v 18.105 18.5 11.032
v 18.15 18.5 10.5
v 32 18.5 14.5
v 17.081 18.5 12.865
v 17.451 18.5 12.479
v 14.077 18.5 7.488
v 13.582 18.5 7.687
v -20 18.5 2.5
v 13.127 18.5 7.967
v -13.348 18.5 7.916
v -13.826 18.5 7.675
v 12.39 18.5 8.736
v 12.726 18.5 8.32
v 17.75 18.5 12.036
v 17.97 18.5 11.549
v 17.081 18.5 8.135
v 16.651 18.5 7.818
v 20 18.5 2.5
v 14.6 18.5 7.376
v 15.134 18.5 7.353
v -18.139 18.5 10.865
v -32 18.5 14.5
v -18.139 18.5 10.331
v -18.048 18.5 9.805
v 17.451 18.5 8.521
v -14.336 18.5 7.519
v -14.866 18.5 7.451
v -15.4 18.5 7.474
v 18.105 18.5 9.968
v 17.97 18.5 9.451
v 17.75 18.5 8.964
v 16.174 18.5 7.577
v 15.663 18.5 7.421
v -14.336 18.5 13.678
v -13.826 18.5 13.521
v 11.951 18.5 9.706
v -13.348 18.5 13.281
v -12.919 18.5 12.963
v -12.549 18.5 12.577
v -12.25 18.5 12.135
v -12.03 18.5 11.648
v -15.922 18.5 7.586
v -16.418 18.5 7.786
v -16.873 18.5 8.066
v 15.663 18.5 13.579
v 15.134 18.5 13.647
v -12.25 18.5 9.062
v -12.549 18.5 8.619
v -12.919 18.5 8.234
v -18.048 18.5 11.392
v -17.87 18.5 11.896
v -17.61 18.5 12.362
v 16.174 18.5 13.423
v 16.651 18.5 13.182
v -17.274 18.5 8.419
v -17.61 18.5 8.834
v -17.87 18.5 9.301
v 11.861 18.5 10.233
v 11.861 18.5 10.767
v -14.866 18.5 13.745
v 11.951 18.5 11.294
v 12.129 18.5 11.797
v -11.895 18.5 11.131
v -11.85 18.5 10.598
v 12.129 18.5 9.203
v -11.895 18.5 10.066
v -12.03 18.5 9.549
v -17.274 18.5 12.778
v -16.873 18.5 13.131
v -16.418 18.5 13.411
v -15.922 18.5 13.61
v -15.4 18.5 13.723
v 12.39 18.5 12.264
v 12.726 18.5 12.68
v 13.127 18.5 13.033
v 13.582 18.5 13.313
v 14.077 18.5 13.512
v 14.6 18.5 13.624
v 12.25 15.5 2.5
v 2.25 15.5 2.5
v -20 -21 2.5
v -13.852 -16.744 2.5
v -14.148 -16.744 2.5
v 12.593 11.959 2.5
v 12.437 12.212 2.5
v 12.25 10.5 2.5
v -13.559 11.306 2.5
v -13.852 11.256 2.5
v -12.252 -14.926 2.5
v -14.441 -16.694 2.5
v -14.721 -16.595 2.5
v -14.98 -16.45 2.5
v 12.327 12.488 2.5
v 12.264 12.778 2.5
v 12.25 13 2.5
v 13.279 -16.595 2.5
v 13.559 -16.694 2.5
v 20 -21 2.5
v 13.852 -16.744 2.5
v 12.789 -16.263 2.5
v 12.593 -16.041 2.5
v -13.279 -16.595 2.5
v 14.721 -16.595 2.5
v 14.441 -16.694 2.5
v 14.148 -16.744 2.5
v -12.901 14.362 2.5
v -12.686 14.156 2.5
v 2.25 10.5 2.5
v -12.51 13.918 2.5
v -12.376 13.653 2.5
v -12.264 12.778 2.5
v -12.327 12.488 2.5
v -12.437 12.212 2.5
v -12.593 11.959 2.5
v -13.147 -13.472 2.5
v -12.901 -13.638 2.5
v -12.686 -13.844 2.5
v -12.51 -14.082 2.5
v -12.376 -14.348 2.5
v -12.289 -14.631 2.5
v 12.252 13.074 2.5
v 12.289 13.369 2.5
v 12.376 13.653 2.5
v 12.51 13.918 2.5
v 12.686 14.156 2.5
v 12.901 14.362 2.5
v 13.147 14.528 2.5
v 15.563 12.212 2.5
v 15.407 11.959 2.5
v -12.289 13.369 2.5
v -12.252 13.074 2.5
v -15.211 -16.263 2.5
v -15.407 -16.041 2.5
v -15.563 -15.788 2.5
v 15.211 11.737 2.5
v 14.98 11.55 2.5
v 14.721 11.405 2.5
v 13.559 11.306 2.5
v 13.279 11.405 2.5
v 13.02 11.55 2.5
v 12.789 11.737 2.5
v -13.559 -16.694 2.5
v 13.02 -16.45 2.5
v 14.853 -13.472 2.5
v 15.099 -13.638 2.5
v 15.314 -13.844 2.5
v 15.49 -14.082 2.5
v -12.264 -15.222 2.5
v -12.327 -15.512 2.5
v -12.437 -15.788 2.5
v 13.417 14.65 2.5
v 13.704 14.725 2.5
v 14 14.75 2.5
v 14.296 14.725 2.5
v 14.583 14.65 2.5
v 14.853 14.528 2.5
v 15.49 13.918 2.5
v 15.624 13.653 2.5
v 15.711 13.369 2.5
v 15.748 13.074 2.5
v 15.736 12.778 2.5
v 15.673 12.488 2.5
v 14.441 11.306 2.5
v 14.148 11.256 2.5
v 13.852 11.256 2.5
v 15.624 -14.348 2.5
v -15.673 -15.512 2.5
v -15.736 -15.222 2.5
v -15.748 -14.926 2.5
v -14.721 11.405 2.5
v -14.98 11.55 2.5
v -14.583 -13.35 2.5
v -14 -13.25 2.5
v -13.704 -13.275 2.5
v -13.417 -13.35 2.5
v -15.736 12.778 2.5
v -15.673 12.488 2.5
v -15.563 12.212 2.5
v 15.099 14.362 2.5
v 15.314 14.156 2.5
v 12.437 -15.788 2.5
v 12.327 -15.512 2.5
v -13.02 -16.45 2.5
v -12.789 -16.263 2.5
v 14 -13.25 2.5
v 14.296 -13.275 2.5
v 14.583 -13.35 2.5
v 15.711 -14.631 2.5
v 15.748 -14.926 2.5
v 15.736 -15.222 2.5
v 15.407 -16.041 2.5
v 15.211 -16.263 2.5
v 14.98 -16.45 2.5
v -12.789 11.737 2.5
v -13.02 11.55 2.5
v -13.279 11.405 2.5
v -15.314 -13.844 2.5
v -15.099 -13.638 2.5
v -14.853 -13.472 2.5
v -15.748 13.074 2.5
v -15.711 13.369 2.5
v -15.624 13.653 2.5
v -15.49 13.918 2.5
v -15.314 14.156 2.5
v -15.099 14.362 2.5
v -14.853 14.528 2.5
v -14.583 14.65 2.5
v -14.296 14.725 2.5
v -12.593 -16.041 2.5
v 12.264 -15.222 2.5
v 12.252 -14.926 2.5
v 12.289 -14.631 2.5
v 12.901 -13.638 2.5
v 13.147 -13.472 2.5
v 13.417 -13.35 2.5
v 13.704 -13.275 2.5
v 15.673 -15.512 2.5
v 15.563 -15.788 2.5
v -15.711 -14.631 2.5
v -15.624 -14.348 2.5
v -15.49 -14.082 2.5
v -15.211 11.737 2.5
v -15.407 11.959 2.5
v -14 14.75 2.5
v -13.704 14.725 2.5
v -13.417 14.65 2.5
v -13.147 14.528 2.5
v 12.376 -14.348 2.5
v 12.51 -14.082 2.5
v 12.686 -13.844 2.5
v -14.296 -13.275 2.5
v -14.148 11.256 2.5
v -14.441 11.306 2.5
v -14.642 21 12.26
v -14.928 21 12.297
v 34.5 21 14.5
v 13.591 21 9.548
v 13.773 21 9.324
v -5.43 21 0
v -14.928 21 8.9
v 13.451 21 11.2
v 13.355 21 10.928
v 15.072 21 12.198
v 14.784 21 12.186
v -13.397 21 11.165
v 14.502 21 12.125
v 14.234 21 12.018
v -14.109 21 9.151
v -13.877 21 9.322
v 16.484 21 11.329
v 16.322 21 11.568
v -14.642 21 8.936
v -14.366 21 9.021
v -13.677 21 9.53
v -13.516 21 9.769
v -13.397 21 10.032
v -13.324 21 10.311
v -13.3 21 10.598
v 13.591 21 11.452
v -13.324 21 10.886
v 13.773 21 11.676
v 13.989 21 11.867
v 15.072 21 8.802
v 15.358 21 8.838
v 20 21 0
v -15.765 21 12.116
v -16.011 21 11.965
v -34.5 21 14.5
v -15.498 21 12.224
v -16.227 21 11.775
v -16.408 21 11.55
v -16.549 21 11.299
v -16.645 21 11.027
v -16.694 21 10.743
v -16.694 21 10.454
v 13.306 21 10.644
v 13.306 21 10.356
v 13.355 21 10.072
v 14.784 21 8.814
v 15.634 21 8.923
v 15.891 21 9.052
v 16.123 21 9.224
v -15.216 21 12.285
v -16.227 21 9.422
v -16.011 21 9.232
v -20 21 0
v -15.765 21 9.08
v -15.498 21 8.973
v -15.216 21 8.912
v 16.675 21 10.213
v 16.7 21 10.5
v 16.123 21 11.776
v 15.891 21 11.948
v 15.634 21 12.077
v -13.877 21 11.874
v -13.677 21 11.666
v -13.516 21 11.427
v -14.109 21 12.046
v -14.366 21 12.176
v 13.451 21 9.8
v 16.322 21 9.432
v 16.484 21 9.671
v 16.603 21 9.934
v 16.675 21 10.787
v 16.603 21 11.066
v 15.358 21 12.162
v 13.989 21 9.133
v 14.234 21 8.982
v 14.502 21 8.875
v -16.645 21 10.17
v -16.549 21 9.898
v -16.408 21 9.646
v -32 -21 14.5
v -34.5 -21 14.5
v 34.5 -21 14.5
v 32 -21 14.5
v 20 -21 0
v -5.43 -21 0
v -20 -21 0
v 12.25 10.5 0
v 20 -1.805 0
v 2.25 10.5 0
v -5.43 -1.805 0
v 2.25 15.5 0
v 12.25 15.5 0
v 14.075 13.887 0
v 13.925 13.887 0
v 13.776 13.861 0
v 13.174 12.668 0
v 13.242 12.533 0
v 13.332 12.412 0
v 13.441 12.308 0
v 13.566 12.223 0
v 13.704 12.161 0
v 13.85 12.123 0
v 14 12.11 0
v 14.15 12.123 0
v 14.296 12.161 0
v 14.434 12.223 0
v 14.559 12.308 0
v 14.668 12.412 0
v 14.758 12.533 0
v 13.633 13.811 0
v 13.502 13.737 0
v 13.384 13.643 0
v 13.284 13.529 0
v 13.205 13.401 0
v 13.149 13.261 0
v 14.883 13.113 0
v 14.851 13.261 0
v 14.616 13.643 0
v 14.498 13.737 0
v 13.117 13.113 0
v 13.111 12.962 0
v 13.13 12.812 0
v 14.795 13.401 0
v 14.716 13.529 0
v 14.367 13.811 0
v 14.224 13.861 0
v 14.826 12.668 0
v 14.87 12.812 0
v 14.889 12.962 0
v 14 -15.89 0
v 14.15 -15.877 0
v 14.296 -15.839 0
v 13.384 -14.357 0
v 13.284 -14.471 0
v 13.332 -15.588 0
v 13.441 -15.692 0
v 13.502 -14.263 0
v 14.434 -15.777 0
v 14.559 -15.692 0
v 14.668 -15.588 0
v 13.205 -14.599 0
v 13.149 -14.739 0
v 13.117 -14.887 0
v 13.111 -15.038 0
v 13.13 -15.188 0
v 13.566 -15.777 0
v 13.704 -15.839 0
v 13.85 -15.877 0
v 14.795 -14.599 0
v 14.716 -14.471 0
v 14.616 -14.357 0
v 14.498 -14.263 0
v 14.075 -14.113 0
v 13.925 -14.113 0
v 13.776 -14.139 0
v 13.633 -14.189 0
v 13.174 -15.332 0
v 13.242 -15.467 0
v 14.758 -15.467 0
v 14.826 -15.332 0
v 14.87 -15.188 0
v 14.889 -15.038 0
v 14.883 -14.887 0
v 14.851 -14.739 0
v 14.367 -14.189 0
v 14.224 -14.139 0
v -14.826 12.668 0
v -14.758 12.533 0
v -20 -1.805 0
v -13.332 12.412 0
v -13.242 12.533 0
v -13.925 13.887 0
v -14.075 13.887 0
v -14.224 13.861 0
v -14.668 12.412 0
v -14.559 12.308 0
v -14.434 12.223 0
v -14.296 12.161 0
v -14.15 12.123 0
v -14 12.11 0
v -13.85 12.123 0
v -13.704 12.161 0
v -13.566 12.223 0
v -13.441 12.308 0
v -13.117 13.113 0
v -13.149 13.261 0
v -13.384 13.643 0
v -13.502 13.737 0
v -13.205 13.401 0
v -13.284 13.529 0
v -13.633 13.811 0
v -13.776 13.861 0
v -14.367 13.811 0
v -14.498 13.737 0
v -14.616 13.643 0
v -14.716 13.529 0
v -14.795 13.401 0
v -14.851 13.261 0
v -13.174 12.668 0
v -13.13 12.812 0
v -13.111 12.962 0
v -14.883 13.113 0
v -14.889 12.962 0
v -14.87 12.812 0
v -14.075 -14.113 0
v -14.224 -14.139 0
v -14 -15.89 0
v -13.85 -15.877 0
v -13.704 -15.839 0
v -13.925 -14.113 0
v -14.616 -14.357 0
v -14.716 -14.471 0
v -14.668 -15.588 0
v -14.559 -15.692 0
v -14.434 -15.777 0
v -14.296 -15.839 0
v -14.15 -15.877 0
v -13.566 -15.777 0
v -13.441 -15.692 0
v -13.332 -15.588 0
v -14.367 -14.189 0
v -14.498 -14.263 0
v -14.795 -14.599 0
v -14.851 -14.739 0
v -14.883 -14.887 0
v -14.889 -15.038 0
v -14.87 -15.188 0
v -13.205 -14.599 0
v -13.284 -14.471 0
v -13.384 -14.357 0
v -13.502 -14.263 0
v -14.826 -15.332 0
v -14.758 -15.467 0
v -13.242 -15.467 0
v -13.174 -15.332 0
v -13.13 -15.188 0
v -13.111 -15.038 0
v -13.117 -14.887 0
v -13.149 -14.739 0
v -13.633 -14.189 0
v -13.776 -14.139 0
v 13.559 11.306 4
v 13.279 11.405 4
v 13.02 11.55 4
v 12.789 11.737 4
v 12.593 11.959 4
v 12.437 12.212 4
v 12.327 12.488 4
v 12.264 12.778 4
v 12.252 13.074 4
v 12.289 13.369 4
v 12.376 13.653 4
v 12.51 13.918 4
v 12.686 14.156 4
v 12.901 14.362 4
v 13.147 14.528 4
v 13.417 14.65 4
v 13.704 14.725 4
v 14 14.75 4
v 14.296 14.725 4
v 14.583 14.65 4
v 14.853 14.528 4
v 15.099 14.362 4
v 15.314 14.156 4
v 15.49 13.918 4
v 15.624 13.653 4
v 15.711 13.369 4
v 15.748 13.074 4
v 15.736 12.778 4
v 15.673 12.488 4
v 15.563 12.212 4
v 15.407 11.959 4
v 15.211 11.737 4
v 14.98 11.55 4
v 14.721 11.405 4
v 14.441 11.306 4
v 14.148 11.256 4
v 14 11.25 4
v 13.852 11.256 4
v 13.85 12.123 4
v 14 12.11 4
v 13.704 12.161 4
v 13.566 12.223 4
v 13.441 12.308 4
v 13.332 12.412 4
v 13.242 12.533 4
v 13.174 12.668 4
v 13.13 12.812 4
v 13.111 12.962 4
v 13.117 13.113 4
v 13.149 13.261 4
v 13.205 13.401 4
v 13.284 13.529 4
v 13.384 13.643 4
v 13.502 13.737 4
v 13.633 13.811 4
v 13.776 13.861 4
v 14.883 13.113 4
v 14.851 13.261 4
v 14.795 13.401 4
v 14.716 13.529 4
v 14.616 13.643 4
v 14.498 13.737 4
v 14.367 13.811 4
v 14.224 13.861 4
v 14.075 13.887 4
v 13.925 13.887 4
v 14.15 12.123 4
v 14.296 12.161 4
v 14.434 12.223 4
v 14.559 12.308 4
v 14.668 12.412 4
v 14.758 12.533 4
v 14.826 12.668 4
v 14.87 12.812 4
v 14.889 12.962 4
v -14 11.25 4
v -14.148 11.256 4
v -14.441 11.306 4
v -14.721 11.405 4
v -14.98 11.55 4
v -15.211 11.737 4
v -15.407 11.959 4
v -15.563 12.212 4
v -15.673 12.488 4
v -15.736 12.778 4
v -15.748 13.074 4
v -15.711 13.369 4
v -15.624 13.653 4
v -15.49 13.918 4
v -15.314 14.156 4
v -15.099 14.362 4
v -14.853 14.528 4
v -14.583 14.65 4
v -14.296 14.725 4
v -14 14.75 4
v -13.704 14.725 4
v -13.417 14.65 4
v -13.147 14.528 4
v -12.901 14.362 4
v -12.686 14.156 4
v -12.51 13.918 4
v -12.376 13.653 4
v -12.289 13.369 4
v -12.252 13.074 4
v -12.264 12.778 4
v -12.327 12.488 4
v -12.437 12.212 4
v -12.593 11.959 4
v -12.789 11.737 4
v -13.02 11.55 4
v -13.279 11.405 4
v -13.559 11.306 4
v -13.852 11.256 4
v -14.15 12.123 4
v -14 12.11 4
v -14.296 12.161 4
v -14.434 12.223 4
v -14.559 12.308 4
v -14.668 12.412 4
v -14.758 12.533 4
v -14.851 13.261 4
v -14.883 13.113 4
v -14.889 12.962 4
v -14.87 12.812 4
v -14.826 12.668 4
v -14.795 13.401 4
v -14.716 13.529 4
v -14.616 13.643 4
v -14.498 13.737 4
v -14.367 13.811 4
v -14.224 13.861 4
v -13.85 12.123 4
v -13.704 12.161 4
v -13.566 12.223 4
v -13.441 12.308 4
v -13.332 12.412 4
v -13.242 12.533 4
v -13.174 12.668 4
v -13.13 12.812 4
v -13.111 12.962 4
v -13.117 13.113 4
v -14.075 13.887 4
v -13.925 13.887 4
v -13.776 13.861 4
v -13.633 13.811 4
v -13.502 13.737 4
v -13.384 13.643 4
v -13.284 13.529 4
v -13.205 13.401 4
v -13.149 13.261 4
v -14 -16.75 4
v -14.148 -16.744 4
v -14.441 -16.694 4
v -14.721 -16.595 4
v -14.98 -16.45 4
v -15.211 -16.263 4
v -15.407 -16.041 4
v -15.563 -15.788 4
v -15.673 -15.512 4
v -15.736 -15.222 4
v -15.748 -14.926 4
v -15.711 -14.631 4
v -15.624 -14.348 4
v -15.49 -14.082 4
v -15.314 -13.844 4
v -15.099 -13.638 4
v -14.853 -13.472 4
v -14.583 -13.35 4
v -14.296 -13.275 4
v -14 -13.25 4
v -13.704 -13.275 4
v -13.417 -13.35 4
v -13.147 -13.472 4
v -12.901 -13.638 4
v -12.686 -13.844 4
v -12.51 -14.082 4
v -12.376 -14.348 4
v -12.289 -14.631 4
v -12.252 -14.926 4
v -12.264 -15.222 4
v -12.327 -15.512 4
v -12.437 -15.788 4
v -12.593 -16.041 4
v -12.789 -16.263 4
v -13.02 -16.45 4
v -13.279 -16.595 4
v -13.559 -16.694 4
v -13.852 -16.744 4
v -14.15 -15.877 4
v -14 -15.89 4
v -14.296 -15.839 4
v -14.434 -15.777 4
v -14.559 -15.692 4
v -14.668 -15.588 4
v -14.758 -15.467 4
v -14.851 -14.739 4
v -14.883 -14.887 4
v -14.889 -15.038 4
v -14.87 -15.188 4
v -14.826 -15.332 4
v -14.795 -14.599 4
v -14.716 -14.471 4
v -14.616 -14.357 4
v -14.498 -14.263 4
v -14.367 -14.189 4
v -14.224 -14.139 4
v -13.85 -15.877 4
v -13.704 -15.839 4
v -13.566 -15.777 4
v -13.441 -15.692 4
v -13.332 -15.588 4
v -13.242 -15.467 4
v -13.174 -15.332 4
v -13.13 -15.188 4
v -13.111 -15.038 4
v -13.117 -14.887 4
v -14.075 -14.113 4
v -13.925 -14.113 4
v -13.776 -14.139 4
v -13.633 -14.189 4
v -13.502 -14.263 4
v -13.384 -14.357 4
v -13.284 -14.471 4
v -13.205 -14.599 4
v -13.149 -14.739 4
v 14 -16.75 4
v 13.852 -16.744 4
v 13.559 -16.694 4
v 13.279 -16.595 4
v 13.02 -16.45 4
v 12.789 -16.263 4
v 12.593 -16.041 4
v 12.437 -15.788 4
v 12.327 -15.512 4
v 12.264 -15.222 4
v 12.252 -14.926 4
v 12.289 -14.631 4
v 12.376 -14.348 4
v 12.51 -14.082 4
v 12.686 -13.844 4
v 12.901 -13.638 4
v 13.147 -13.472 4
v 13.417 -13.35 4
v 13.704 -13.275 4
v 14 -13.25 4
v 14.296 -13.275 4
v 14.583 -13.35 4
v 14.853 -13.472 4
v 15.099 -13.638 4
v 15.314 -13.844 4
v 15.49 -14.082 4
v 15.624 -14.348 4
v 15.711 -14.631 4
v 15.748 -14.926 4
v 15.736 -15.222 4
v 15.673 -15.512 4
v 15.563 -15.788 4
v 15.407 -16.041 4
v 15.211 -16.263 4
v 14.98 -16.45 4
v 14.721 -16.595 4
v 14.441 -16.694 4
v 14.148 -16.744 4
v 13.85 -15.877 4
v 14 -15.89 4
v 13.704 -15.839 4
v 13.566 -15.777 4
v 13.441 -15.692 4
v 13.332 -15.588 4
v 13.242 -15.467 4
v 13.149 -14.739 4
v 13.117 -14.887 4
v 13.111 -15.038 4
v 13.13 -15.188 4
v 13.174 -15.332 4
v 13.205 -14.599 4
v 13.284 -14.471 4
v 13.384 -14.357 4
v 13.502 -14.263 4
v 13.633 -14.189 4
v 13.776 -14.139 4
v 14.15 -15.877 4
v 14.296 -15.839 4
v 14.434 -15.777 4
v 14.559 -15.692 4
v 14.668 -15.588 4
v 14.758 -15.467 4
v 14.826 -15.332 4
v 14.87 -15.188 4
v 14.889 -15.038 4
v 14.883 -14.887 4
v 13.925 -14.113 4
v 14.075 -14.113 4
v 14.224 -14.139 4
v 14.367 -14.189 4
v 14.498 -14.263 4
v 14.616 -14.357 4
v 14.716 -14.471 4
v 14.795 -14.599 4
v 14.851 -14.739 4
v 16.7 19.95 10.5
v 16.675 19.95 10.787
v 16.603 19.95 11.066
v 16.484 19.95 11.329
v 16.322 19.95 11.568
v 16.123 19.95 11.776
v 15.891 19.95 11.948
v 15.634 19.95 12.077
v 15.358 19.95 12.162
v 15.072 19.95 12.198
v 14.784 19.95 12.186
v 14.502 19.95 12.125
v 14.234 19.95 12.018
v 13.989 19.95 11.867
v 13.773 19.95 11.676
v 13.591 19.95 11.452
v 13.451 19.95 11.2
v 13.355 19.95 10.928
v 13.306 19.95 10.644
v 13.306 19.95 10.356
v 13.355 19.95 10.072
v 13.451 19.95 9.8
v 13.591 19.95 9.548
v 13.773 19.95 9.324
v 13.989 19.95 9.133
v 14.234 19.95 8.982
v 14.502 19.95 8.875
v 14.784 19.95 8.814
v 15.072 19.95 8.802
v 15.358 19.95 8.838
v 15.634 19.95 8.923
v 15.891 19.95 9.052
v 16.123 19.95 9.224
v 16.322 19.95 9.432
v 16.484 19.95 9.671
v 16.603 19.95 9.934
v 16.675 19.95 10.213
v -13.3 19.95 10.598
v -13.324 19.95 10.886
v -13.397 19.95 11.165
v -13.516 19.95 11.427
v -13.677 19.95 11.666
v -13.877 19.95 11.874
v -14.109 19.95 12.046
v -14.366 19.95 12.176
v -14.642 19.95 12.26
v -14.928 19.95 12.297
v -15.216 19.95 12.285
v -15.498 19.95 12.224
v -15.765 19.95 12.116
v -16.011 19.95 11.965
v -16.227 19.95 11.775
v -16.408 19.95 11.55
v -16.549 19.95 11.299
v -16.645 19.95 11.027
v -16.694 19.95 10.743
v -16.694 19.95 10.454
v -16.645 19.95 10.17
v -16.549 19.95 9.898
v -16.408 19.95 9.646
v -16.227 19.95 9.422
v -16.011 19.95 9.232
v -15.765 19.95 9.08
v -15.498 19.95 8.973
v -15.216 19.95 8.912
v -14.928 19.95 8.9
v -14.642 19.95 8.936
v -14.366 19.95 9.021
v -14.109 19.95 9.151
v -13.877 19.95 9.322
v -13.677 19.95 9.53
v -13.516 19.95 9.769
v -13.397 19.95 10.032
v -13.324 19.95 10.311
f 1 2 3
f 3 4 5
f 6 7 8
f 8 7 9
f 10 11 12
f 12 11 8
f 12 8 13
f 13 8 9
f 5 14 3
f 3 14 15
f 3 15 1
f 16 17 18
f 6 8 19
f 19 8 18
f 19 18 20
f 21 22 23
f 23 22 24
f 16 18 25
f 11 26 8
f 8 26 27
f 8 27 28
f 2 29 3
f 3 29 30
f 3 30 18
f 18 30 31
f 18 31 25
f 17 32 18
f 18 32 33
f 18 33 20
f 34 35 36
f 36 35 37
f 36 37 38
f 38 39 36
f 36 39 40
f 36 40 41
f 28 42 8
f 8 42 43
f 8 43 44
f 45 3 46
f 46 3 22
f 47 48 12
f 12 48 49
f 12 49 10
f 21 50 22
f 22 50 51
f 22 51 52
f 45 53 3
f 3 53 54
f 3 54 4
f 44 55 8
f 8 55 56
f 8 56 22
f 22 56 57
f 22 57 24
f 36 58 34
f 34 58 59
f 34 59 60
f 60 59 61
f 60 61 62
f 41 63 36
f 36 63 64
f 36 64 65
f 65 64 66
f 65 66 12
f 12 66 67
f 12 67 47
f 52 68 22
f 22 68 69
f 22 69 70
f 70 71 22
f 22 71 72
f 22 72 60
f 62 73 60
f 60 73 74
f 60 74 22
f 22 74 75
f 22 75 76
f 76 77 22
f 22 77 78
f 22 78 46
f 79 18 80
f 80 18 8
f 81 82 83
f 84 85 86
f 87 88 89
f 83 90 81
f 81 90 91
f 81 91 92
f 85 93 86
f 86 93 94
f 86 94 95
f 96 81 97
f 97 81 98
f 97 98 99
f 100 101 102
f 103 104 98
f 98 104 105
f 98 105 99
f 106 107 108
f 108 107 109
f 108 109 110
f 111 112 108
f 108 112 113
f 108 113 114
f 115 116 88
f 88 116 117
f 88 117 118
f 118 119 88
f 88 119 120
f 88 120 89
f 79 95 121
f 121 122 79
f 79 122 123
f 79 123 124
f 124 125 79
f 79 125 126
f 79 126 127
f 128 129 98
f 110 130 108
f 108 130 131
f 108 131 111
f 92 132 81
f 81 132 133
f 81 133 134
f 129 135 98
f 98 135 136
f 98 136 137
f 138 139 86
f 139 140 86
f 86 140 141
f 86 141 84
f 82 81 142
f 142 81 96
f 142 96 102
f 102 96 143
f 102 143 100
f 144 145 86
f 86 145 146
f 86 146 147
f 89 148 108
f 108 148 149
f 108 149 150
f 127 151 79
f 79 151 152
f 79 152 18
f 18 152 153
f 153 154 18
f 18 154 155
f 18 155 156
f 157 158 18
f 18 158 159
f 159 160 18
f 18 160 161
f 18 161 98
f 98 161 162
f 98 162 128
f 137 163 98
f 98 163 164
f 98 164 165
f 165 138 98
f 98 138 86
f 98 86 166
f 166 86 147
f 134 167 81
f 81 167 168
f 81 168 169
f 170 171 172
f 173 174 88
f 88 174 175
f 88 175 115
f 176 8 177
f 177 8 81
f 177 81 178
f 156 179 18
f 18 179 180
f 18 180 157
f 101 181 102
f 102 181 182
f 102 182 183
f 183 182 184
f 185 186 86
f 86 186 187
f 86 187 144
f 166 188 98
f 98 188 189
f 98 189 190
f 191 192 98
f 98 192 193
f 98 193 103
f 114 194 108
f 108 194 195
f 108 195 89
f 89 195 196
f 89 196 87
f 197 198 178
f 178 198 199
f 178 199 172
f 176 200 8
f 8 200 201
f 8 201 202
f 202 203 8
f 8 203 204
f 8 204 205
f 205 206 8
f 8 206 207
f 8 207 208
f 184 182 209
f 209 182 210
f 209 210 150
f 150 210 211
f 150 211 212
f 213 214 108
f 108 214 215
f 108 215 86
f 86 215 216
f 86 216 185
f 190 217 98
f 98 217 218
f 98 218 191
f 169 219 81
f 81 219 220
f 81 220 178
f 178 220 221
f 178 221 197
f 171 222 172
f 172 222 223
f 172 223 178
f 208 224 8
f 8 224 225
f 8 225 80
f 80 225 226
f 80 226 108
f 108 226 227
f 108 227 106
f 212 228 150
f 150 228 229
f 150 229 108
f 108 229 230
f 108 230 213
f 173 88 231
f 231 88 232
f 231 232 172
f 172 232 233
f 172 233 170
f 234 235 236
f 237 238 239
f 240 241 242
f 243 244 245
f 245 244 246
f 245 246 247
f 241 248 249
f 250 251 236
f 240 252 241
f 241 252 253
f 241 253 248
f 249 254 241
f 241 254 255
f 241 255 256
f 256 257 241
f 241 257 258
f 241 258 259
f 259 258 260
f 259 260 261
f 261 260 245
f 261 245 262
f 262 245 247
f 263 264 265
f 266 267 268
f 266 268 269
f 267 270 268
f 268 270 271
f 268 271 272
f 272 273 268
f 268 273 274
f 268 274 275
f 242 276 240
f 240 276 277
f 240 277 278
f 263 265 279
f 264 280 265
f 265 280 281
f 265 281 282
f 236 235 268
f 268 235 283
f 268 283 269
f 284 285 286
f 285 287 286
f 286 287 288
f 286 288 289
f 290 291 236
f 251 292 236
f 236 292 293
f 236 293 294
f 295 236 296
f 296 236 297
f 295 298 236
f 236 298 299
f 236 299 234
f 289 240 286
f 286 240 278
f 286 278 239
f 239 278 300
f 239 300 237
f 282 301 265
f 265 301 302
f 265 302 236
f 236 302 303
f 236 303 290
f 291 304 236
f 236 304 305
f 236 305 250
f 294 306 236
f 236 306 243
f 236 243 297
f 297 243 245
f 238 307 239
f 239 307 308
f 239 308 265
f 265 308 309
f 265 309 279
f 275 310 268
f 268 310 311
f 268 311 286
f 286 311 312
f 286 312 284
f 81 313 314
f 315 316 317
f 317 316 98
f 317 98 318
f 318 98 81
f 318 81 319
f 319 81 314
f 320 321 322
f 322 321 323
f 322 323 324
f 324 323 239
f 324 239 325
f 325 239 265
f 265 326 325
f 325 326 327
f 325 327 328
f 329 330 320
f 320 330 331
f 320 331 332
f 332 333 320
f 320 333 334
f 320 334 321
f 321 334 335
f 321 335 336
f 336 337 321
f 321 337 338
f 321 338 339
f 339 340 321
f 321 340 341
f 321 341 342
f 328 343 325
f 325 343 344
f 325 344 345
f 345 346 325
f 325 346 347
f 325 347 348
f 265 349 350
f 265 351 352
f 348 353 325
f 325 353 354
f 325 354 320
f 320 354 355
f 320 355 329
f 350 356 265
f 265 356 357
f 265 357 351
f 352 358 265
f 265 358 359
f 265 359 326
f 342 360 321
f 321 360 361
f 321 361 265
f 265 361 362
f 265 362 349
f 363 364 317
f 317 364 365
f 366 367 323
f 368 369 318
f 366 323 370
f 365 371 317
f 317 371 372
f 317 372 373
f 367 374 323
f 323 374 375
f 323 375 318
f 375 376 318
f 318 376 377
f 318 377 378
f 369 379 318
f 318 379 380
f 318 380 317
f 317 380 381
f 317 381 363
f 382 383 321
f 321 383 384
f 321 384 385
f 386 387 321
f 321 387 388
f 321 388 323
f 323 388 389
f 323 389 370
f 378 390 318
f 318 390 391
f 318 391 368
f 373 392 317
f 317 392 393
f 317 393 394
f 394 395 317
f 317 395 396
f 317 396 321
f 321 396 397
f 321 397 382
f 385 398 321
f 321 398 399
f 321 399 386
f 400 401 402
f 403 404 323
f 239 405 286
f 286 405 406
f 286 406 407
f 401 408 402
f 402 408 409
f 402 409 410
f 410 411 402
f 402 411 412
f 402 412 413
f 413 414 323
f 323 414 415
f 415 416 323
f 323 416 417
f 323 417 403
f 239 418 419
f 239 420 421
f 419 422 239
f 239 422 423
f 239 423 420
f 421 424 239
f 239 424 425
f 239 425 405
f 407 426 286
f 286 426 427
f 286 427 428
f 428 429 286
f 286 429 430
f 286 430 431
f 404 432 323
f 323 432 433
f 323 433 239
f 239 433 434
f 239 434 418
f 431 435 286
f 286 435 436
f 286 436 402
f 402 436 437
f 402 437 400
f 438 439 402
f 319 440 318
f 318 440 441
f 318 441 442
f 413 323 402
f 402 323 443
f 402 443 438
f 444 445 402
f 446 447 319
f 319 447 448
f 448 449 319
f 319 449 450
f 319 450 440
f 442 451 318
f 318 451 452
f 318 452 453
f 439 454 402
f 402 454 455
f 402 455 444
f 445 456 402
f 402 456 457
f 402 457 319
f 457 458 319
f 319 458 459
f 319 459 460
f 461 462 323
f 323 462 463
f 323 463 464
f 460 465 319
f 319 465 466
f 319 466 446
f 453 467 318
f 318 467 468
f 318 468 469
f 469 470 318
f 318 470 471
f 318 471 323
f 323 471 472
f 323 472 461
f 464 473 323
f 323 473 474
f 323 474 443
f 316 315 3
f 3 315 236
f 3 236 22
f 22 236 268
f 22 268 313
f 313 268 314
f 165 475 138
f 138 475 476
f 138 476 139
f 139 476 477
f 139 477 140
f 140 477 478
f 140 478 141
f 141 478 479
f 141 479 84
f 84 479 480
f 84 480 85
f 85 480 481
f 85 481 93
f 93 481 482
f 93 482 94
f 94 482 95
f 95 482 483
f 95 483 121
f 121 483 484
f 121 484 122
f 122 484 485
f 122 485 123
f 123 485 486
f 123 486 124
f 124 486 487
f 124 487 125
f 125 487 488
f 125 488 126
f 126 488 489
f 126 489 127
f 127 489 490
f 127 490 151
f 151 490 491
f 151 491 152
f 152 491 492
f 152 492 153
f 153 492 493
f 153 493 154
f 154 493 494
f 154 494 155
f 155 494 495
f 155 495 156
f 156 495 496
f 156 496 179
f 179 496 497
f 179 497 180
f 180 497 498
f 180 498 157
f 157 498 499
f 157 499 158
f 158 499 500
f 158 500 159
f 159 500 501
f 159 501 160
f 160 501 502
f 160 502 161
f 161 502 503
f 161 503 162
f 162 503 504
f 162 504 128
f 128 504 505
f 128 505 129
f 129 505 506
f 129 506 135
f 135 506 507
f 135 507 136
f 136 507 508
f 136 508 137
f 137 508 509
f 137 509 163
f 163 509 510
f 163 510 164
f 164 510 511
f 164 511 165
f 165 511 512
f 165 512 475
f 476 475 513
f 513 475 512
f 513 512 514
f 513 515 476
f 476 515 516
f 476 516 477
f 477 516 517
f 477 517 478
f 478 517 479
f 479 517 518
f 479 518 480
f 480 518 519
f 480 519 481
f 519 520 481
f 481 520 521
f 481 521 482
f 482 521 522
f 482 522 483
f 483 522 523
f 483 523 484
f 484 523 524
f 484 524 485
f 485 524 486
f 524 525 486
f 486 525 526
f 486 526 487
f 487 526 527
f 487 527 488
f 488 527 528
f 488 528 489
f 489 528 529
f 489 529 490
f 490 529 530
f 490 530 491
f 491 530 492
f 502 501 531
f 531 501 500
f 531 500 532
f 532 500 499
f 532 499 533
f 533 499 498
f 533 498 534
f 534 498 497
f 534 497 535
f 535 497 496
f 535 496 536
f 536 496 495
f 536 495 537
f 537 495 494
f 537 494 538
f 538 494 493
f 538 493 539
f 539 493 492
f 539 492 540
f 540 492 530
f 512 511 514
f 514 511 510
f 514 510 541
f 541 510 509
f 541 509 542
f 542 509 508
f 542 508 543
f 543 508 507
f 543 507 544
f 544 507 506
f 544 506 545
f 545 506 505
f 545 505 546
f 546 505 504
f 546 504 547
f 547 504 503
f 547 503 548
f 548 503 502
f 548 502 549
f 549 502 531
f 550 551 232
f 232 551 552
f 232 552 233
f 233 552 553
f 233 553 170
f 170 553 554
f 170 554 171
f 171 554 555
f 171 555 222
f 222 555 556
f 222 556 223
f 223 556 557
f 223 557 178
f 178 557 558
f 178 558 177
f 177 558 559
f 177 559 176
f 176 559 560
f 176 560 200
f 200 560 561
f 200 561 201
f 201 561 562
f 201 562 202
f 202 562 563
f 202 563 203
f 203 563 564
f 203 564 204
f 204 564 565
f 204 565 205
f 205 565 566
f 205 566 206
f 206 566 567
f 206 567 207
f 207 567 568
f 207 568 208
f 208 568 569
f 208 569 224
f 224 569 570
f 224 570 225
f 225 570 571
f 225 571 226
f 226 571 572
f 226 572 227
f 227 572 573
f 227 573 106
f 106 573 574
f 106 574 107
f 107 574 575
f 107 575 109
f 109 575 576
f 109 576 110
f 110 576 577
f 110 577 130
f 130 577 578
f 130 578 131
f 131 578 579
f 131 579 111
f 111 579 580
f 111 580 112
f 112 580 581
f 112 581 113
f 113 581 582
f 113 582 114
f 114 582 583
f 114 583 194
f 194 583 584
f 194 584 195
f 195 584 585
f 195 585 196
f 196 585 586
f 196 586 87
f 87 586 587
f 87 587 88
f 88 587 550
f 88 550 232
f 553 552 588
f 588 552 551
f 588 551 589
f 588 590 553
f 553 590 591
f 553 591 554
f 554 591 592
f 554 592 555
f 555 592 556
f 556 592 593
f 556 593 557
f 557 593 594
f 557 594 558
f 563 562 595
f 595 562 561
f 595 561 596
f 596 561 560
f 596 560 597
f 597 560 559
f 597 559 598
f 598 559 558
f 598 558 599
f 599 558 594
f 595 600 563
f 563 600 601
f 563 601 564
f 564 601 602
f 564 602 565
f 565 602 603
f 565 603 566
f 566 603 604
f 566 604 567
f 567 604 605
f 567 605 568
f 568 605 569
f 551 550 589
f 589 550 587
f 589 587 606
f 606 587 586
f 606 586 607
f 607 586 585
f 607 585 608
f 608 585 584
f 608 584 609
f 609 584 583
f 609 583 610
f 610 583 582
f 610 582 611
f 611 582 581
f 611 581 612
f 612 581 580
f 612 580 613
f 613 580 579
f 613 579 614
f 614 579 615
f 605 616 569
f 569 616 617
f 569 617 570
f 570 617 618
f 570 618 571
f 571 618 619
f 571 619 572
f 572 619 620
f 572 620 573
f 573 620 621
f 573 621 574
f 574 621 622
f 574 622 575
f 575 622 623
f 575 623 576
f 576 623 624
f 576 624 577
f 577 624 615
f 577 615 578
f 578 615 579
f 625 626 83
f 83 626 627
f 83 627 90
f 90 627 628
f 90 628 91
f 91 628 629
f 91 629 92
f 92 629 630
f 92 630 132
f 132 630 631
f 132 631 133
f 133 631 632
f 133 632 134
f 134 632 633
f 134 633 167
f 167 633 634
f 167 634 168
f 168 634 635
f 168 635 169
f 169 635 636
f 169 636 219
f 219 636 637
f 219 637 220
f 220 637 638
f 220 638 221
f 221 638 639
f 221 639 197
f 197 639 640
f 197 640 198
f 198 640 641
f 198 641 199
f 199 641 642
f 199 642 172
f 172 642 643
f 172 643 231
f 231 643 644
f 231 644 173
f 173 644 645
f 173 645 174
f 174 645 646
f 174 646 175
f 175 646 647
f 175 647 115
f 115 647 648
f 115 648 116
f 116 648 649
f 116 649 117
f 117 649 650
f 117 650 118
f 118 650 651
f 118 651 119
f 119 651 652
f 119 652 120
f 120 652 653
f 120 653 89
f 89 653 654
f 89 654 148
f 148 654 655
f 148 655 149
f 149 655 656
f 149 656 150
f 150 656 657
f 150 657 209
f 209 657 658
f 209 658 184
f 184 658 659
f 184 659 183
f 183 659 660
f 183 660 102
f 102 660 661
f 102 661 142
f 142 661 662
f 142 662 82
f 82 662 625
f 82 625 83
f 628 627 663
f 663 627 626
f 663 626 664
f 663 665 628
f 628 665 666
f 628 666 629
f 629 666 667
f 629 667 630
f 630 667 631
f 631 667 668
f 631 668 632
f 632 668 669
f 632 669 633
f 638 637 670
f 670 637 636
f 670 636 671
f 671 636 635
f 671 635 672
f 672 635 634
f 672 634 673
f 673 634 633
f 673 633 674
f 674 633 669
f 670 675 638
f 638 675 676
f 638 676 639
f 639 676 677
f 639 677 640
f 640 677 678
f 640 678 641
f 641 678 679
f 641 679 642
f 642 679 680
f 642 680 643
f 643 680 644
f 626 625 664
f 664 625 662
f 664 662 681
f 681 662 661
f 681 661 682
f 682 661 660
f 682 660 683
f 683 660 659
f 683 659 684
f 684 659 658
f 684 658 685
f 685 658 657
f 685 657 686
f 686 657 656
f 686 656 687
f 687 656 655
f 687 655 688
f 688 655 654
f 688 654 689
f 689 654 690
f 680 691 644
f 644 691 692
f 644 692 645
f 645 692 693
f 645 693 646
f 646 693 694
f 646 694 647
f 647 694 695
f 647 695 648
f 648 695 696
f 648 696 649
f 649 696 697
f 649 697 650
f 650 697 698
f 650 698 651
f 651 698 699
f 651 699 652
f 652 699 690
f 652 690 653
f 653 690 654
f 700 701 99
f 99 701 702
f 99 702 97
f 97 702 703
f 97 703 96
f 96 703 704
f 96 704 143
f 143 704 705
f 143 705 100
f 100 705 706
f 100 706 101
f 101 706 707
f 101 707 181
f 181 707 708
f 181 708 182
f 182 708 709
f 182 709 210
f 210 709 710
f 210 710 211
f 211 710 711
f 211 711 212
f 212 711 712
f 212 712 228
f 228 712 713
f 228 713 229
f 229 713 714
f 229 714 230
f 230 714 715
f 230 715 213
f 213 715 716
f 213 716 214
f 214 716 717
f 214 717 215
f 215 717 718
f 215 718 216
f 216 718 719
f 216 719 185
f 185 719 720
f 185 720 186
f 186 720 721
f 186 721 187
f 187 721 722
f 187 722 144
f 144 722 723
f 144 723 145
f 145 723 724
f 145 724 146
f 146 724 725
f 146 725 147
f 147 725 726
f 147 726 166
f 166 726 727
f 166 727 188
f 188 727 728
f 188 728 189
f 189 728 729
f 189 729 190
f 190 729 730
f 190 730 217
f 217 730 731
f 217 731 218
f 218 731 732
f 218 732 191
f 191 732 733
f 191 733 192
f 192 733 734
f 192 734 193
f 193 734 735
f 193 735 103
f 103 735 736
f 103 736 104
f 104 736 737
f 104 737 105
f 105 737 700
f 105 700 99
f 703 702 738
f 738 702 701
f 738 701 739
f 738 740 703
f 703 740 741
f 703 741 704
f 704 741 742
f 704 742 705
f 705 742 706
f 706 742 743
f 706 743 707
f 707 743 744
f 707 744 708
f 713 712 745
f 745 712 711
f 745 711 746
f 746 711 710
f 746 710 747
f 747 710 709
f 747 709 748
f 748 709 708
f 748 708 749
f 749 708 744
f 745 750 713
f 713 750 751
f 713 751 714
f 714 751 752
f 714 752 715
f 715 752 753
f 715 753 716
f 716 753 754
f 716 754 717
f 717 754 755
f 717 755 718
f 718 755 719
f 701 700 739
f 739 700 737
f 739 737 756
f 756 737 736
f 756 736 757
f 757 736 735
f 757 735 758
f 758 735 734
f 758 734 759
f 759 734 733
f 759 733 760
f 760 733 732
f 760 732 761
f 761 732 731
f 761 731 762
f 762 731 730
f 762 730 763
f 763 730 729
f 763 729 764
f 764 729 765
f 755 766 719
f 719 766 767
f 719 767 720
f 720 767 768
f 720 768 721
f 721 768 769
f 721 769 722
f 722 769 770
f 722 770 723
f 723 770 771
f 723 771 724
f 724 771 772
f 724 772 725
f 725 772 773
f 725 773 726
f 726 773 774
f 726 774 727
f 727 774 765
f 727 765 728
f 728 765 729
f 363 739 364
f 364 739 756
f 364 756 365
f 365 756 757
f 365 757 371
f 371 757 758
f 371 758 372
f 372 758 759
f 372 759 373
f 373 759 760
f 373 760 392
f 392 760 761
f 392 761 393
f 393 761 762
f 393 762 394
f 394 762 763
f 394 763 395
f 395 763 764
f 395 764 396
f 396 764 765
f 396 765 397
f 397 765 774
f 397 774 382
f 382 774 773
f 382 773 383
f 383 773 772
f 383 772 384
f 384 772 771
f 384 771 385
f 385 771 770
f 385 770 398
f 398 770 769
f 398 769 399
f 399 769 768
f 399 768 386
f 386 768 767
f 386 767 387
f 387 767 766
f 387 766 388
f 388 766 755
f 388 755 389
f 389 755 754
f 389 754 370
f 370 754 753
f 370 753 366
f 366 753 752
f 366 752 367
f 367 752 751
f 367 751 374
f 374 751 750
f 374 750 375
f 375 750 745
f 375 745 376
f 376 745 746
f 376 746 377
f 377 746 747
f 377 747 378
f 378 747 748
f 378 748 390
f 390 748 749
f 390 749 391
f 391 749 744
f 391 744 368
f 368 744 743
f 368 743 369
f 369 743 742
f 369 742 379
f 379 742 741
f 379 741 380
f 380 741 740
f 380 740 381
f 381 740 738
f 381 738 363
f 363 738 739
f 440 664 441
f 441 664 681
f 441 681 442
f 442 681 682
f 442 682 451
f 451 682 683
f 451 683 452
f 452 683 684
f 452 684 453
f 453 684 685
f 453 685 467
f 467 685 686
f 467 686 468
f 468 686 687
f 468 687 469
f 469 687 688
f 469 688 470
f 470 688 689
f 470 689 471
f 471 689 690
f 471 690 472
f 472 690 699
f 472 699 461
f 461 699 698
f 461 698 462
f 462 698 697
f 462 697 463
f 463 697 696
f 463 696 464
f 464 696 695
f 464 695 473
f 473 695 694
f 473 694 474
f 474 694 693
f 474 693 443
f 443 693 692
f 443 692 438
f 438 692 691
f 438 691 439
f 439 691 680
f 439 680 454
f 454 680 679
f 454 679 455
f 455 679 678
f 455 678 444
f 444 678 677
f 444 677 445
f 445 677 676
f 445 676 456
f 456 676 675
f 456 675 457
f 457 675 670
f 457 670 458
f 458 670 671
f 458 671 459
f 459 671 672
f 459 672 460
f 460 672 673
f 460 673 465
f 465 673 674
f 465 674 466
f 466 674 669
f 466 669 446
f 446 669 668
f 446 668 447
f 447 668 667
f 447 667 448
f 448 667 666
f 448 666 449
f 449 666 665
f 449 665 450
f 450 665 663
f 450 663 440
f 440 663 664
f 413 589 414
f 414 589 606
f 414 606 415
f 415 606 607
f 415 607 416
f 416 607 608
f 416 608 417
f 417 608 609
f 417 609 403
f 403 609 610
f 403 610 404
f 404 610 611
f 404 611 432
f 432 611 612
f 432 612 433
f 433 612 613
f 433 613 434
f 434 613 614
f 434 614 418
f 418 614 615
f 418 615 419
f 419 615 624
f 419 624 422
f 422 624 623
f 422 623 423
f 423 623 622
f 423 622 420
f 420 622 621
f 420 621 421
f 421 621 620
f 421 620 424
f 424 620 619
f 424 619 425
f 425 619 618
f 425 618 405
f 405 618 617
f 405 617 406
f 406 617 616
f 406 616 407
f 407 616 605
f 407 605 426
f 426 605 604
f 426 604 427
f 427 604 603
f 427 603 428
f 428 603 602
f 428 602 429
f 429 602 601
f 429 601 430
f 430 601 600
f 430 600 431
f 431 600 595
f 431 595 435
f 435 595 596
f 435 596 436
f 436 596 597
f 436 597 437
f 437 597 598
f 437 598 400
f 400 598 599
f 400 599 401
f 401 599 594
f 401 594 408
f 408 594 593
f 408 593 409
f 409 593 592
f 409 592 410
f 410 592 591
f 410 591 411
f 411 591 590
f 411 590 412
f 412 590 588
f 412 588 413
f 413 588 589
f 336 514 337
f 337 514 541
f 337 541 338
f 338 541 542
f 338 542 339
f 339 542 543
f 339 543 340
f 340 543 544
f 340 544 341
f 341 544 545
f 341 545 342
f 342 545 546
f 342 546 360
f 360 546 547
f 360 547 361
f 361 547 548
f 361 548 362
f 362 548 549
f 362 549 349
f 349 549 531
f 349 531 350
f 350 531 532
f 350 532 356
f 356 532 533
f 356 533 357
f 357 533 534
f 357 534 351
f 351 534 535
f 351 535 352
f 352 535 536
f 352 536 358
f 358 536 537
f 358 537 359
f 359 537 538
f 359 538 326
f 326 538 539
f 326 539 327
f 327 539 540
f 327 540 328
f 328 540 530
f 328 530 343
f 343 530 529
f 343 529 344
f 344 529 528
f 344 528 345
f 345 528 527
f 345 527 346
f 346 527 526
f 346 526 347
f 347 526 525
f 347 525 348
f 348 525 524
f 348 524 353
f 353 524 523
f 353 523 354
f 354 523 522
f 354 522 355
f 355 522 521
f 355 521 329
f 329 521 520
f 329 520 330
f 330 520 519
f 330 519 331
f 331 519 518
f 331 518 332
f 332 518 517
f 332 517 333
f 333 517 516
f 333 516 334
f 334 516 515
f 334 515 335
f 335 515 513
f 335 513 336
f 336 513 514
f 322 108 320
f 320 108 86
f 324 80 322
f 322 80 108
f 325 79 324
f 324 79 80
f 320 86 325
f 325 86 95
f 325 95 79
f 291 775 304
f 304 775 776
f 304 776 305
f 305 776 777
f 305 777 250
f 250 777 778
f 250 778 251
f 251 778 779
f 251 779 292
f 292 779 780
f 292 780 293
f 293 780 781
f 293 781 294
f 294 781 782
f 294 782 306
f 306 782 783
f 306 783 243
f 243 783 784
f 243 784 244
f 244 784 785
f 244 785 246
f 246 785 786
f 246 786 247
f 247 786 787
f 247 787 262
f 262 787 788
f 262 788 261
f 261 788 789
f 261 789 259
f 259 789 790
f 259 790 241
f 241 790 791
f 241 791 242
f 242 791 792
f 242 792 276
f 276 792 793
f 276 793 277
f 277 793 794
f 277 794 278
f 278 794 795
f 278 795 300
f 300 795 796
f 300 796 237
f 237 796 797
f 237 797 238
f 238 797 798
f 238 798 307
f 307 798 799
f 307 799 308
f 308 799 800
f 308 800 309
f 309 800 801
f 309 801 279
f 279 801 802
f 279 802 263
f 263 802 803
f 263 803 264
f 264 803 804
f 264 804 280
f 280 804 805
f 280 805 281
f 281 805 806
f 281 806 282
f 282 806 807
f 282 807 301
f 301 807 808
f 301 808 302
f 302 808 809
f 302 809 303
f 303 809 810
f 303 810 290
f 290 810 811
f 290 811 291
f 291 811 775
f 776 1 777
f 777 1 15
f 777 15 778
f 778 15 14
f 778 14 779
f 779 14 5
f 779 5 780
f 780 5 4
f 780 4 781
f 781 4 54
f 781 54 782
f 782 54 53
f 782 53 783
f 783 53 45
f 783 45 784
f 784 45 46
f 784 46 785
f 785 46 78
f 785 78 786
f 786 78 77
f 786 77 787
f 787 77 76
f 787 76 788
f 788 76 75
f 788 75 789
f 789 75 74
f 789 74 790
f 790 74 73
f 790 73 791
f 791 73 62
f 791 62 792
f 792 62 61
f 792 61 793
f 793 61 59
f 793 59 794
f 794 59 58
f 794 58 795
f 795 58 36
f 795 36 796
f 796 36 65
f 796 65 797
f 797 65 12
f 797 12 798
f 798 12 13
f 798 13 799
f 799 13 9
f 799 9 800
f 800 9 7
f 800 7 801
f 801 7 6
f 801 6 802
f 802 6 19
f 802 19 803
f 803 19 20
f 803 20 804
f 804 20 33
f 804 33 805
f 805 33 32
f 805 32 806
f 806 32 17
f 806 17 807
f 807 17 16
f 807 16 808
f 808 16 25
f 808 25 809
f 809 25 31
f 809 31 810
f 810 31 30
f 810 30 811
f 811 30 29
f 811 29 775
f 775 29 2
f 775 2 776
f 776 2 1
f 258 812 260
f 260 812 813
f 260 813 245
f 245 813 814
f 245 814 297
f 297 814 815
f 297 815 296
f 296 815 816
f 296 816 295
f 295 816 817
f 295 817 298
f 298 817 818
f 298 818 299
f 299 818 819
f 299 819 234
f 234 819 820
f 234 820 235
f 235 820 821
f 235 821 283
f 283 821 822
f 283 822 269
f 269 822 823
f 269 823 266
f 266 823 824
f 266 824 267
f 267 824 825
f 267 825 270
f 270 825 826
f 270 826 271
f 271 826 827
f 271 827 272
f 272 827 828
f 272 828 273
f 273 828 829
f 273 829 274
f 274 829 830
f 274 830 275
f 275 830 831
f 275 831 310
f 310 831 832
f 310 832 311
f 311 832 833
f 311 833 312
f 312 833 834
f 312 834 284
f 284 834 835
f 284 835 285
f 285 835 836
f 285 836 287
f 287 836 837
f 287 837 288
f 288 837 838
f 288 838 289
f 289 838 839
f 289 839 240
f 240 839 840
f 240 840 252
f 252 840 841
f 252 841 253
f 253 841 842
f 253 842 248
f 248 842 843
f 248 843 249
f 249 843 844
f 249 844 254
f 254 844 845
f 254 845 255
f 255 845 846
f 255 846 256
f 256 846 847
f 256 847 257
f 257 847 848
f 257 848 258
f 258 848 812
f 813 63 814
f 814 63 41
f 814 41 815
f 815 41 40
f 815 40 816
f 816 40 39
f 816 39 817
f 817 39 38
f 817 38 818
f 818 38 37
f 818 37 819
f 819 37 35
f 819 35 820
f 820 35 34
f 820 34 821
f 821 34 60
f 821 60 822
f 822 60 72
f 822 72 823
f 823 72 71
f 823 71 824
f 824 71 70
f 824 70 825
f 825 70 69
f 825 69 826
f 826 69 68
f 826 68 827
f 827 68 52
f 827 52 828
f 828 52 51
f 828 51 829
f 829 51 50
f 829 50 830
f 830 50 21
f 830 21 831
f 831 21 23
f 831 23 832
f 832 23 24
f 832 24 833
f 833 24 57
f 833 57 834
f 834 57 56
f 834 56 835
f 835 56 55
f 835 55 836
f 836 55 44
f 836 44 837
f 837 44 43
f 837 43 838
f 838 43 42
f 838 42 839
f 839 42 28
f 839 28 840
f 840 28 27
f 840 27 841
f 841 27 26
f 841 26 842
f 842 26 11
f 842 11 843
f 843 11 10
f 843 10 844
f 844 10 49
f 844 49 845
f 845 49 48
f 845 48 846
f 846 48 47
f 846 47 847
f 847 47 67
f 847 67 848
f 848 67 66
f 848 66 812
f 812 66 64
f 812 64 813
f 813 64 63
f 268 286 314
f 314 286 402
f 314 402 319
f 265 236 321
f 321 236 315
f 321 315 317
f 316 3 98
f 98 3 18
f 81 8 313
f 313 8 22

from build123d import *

# Parameters (mm, degrees)
SKETCH1_W                                      = 40
SKETCH1_H                                      = 42
BOSS_EXTRUDE1_DEPTH                            = 2.5
SKETCH2_W                                      = 40
SKETCH2_H                                      = 2.5
BOSS_EXTRUDE2_DEPTH                            = 12
SKETCH3_R                                      = 1.75
BOSS_EXTRUDE3_DEPTH                            = 1.5
SKETCH5_R                                      = 0.89
CUT_EXTRUDE2_DEPTH                             = 31.842341027
SKETCH6_W                                      = 10
SKETCH6_H                                      = 5
CUT_EXTRUDE3_DEPTH                             = 31.842341027
CSK_FOR_M3_FLAT_HEAD_MACHINE_SCREW1_AT_2_COUNT = 2
CSK_FOR_M3_FLAT_HEAD_MACHINE_SCREW1_AT_2_PITCH = 30
BOSS_EXTRUDE4_DEPTH                            = 2.5
BOSS_EXTRUDE5_DEPTH                            = 39.5
BODY_MOVE_COPY1_ANGLE                          = 90


with BuildPart() as part:
    # Sketch1 → Boss-Extrude1 (new body)
    with BuildSketch(Plane(origin=(0, 0, 0), x_dir=(1, 0, 0), z_dir=(0, 1, 0))):
        Rectangle(SKETCH1_W, SKETCH1_H)
    extrude(amount=BOSS_EXTRUDE1_DEPTH)

    # Sketch2 → Boss-Extrude2 (add)
    with BuildSketch(Plane(origin=(0, 2.5, 0), x_dir=(1, 0, 0), z_dir=(0, 1, 0))):
        with Locations((0, 19.75)):
            Rectangle(SKETCH2_W, SKETCH2_H)
    extrude(amount=BOSS_EXTRUDE2_DEPTH)

    # Sketch3 → Boss-Extrude3 (add)
    with BuildSketch(Plane(origin=(0, 2.5, 0), x_dir=(1, 0, 0), z_dir=(0, 1, 0))):
        with Locations(Location((14, 13, 0), (0, 0, 90))):
            Circle(SKETCH3_R)
        with Locations(Location((-14, 13, 0), (0, 0, 90))):
            Circle(SKETCH3_R)
        with Locations(Location((-14, -15, 0), (0, 0, 90))):
            Circle(SKETCH3_R)
        with Locations(Location((14, -15, 0), (0, 0, 90))):
            Circle(SKETCH3_R)
    extrude(amount=BOSS_EXTRUDE3_DEPTH)

    # Sketch5 → Cut-Extrude2 (cut, through all)
    with BuildSketch(Plane(origin=(0, 4, 0), x_dir=(1, 0, 0), z_dir=(0, 1, 0))):
        with Locations(Location((-14, 13, 0), (0, 0, 270))):
            Circle(SKETCH5_R)
        with Locations(Location((14, 13, 0), (0, 0, 270))):
            Circle(SKETCH5_R)
        with Locations(Location((14, -15, 0), (0, 0, 270))):
            Circle(SKETCH5_R)
        with Locations(Location((-14, -15, 0), (0, 0, 270))):
            Circle(SKETCH5_R)
    extrude(amount=-CUT_EXTRUDE2_DEPTH, mode=Mode.SUBTRACT)

    # Sketch6 → Cut-Extrude3 (cut, through all)
    with BuildSketch(Plane(origin=(0, 4, 0), x_dir=(1, 0, 0), z_dir=(0, 1, 0))):
        with Locations((7.25, 13)):
            Rectangle(SKETCH6_W, SKETCH6_H)
    extrude(amount=-CUT_EXTRUDE3_DEPTH, mode=Mode.SUBTRACT)

    # Sketch8 → CSK for M3 Flat Head Machine Screw1 (revolve, cut)
    with BuildSketch(Plane(origin=(-15, 10.59833188, -18.5), x_dir=(0, -1, 0), z_dir=(1, 0, 0))):
        Polygon((0, 0), (0, 2.5), (1.7, 2.5), (1.7, 1.45), (3.15, 0), align=None)
    csk_for_m3_flat_head_machine_screw1 = revolve(axis=Axis((-15, 10.59833188, -12.15), (0, 0, -1)), mode=Mode.SUBTRACT)

    # CSK for M3 Flat Head Machine Screw1 at 2: CSK for M3 Flat Head Machine Screw1 ×2
    with Locations(*[Vector(0.9999946282308037, -0.0032777293263655718, 0) * (i * CSK_FOR_M3_FLAT_HEAD_MACHINE_SCREW1_AT_2_PITCH) for i in range(1, CSK_FOR_M3_FLAT_HEAD_MACHINE_SCREW1_AT_2_COUNT)]):
        add(csk_for_m3_flat_head_machine_screw1, mode=Mode.SUBTRACT)

    # Sketch9 → Boss-Extrude4 (add)
    with BuildSketch(Plane(origin=(0, 0, -21), x_dir=(-1, 0, 0), z_dir=(0, 0, -1))):
        Polygon((20, 0), (34.5, 14.5), (20, 14.5), align=None)
        Polygon((-20, 0), (-34.5, 14.5), (-20, 14.5), align=None)
    extrude(amount=-BOSS_EXTRUDE4_DEPTH)

    # Sketch10 → Boss-Extrude5 (add)
    with BuildSketch(Plane.XY.offset(-18.5)):
        Polygon((20, 2.5), (32, 14.5), (34.5, 14.5), (20, 0), align=None)
        Polygon((-20, 2.5), (-32, 14.5), (-34.5, 14.5), (-20, 0), align=None)
    extrude(amount=BOSS_EXTRUDE5_DEPTH)


with BuildPart() as part_1:
    # Body-Move/Copy1: moved
    add(part.part.rotate(Axis((0, 0, 0), (1, 0, 0)), BODY_MOVE_COPY1_ANGLE))


solid = part_1.part
